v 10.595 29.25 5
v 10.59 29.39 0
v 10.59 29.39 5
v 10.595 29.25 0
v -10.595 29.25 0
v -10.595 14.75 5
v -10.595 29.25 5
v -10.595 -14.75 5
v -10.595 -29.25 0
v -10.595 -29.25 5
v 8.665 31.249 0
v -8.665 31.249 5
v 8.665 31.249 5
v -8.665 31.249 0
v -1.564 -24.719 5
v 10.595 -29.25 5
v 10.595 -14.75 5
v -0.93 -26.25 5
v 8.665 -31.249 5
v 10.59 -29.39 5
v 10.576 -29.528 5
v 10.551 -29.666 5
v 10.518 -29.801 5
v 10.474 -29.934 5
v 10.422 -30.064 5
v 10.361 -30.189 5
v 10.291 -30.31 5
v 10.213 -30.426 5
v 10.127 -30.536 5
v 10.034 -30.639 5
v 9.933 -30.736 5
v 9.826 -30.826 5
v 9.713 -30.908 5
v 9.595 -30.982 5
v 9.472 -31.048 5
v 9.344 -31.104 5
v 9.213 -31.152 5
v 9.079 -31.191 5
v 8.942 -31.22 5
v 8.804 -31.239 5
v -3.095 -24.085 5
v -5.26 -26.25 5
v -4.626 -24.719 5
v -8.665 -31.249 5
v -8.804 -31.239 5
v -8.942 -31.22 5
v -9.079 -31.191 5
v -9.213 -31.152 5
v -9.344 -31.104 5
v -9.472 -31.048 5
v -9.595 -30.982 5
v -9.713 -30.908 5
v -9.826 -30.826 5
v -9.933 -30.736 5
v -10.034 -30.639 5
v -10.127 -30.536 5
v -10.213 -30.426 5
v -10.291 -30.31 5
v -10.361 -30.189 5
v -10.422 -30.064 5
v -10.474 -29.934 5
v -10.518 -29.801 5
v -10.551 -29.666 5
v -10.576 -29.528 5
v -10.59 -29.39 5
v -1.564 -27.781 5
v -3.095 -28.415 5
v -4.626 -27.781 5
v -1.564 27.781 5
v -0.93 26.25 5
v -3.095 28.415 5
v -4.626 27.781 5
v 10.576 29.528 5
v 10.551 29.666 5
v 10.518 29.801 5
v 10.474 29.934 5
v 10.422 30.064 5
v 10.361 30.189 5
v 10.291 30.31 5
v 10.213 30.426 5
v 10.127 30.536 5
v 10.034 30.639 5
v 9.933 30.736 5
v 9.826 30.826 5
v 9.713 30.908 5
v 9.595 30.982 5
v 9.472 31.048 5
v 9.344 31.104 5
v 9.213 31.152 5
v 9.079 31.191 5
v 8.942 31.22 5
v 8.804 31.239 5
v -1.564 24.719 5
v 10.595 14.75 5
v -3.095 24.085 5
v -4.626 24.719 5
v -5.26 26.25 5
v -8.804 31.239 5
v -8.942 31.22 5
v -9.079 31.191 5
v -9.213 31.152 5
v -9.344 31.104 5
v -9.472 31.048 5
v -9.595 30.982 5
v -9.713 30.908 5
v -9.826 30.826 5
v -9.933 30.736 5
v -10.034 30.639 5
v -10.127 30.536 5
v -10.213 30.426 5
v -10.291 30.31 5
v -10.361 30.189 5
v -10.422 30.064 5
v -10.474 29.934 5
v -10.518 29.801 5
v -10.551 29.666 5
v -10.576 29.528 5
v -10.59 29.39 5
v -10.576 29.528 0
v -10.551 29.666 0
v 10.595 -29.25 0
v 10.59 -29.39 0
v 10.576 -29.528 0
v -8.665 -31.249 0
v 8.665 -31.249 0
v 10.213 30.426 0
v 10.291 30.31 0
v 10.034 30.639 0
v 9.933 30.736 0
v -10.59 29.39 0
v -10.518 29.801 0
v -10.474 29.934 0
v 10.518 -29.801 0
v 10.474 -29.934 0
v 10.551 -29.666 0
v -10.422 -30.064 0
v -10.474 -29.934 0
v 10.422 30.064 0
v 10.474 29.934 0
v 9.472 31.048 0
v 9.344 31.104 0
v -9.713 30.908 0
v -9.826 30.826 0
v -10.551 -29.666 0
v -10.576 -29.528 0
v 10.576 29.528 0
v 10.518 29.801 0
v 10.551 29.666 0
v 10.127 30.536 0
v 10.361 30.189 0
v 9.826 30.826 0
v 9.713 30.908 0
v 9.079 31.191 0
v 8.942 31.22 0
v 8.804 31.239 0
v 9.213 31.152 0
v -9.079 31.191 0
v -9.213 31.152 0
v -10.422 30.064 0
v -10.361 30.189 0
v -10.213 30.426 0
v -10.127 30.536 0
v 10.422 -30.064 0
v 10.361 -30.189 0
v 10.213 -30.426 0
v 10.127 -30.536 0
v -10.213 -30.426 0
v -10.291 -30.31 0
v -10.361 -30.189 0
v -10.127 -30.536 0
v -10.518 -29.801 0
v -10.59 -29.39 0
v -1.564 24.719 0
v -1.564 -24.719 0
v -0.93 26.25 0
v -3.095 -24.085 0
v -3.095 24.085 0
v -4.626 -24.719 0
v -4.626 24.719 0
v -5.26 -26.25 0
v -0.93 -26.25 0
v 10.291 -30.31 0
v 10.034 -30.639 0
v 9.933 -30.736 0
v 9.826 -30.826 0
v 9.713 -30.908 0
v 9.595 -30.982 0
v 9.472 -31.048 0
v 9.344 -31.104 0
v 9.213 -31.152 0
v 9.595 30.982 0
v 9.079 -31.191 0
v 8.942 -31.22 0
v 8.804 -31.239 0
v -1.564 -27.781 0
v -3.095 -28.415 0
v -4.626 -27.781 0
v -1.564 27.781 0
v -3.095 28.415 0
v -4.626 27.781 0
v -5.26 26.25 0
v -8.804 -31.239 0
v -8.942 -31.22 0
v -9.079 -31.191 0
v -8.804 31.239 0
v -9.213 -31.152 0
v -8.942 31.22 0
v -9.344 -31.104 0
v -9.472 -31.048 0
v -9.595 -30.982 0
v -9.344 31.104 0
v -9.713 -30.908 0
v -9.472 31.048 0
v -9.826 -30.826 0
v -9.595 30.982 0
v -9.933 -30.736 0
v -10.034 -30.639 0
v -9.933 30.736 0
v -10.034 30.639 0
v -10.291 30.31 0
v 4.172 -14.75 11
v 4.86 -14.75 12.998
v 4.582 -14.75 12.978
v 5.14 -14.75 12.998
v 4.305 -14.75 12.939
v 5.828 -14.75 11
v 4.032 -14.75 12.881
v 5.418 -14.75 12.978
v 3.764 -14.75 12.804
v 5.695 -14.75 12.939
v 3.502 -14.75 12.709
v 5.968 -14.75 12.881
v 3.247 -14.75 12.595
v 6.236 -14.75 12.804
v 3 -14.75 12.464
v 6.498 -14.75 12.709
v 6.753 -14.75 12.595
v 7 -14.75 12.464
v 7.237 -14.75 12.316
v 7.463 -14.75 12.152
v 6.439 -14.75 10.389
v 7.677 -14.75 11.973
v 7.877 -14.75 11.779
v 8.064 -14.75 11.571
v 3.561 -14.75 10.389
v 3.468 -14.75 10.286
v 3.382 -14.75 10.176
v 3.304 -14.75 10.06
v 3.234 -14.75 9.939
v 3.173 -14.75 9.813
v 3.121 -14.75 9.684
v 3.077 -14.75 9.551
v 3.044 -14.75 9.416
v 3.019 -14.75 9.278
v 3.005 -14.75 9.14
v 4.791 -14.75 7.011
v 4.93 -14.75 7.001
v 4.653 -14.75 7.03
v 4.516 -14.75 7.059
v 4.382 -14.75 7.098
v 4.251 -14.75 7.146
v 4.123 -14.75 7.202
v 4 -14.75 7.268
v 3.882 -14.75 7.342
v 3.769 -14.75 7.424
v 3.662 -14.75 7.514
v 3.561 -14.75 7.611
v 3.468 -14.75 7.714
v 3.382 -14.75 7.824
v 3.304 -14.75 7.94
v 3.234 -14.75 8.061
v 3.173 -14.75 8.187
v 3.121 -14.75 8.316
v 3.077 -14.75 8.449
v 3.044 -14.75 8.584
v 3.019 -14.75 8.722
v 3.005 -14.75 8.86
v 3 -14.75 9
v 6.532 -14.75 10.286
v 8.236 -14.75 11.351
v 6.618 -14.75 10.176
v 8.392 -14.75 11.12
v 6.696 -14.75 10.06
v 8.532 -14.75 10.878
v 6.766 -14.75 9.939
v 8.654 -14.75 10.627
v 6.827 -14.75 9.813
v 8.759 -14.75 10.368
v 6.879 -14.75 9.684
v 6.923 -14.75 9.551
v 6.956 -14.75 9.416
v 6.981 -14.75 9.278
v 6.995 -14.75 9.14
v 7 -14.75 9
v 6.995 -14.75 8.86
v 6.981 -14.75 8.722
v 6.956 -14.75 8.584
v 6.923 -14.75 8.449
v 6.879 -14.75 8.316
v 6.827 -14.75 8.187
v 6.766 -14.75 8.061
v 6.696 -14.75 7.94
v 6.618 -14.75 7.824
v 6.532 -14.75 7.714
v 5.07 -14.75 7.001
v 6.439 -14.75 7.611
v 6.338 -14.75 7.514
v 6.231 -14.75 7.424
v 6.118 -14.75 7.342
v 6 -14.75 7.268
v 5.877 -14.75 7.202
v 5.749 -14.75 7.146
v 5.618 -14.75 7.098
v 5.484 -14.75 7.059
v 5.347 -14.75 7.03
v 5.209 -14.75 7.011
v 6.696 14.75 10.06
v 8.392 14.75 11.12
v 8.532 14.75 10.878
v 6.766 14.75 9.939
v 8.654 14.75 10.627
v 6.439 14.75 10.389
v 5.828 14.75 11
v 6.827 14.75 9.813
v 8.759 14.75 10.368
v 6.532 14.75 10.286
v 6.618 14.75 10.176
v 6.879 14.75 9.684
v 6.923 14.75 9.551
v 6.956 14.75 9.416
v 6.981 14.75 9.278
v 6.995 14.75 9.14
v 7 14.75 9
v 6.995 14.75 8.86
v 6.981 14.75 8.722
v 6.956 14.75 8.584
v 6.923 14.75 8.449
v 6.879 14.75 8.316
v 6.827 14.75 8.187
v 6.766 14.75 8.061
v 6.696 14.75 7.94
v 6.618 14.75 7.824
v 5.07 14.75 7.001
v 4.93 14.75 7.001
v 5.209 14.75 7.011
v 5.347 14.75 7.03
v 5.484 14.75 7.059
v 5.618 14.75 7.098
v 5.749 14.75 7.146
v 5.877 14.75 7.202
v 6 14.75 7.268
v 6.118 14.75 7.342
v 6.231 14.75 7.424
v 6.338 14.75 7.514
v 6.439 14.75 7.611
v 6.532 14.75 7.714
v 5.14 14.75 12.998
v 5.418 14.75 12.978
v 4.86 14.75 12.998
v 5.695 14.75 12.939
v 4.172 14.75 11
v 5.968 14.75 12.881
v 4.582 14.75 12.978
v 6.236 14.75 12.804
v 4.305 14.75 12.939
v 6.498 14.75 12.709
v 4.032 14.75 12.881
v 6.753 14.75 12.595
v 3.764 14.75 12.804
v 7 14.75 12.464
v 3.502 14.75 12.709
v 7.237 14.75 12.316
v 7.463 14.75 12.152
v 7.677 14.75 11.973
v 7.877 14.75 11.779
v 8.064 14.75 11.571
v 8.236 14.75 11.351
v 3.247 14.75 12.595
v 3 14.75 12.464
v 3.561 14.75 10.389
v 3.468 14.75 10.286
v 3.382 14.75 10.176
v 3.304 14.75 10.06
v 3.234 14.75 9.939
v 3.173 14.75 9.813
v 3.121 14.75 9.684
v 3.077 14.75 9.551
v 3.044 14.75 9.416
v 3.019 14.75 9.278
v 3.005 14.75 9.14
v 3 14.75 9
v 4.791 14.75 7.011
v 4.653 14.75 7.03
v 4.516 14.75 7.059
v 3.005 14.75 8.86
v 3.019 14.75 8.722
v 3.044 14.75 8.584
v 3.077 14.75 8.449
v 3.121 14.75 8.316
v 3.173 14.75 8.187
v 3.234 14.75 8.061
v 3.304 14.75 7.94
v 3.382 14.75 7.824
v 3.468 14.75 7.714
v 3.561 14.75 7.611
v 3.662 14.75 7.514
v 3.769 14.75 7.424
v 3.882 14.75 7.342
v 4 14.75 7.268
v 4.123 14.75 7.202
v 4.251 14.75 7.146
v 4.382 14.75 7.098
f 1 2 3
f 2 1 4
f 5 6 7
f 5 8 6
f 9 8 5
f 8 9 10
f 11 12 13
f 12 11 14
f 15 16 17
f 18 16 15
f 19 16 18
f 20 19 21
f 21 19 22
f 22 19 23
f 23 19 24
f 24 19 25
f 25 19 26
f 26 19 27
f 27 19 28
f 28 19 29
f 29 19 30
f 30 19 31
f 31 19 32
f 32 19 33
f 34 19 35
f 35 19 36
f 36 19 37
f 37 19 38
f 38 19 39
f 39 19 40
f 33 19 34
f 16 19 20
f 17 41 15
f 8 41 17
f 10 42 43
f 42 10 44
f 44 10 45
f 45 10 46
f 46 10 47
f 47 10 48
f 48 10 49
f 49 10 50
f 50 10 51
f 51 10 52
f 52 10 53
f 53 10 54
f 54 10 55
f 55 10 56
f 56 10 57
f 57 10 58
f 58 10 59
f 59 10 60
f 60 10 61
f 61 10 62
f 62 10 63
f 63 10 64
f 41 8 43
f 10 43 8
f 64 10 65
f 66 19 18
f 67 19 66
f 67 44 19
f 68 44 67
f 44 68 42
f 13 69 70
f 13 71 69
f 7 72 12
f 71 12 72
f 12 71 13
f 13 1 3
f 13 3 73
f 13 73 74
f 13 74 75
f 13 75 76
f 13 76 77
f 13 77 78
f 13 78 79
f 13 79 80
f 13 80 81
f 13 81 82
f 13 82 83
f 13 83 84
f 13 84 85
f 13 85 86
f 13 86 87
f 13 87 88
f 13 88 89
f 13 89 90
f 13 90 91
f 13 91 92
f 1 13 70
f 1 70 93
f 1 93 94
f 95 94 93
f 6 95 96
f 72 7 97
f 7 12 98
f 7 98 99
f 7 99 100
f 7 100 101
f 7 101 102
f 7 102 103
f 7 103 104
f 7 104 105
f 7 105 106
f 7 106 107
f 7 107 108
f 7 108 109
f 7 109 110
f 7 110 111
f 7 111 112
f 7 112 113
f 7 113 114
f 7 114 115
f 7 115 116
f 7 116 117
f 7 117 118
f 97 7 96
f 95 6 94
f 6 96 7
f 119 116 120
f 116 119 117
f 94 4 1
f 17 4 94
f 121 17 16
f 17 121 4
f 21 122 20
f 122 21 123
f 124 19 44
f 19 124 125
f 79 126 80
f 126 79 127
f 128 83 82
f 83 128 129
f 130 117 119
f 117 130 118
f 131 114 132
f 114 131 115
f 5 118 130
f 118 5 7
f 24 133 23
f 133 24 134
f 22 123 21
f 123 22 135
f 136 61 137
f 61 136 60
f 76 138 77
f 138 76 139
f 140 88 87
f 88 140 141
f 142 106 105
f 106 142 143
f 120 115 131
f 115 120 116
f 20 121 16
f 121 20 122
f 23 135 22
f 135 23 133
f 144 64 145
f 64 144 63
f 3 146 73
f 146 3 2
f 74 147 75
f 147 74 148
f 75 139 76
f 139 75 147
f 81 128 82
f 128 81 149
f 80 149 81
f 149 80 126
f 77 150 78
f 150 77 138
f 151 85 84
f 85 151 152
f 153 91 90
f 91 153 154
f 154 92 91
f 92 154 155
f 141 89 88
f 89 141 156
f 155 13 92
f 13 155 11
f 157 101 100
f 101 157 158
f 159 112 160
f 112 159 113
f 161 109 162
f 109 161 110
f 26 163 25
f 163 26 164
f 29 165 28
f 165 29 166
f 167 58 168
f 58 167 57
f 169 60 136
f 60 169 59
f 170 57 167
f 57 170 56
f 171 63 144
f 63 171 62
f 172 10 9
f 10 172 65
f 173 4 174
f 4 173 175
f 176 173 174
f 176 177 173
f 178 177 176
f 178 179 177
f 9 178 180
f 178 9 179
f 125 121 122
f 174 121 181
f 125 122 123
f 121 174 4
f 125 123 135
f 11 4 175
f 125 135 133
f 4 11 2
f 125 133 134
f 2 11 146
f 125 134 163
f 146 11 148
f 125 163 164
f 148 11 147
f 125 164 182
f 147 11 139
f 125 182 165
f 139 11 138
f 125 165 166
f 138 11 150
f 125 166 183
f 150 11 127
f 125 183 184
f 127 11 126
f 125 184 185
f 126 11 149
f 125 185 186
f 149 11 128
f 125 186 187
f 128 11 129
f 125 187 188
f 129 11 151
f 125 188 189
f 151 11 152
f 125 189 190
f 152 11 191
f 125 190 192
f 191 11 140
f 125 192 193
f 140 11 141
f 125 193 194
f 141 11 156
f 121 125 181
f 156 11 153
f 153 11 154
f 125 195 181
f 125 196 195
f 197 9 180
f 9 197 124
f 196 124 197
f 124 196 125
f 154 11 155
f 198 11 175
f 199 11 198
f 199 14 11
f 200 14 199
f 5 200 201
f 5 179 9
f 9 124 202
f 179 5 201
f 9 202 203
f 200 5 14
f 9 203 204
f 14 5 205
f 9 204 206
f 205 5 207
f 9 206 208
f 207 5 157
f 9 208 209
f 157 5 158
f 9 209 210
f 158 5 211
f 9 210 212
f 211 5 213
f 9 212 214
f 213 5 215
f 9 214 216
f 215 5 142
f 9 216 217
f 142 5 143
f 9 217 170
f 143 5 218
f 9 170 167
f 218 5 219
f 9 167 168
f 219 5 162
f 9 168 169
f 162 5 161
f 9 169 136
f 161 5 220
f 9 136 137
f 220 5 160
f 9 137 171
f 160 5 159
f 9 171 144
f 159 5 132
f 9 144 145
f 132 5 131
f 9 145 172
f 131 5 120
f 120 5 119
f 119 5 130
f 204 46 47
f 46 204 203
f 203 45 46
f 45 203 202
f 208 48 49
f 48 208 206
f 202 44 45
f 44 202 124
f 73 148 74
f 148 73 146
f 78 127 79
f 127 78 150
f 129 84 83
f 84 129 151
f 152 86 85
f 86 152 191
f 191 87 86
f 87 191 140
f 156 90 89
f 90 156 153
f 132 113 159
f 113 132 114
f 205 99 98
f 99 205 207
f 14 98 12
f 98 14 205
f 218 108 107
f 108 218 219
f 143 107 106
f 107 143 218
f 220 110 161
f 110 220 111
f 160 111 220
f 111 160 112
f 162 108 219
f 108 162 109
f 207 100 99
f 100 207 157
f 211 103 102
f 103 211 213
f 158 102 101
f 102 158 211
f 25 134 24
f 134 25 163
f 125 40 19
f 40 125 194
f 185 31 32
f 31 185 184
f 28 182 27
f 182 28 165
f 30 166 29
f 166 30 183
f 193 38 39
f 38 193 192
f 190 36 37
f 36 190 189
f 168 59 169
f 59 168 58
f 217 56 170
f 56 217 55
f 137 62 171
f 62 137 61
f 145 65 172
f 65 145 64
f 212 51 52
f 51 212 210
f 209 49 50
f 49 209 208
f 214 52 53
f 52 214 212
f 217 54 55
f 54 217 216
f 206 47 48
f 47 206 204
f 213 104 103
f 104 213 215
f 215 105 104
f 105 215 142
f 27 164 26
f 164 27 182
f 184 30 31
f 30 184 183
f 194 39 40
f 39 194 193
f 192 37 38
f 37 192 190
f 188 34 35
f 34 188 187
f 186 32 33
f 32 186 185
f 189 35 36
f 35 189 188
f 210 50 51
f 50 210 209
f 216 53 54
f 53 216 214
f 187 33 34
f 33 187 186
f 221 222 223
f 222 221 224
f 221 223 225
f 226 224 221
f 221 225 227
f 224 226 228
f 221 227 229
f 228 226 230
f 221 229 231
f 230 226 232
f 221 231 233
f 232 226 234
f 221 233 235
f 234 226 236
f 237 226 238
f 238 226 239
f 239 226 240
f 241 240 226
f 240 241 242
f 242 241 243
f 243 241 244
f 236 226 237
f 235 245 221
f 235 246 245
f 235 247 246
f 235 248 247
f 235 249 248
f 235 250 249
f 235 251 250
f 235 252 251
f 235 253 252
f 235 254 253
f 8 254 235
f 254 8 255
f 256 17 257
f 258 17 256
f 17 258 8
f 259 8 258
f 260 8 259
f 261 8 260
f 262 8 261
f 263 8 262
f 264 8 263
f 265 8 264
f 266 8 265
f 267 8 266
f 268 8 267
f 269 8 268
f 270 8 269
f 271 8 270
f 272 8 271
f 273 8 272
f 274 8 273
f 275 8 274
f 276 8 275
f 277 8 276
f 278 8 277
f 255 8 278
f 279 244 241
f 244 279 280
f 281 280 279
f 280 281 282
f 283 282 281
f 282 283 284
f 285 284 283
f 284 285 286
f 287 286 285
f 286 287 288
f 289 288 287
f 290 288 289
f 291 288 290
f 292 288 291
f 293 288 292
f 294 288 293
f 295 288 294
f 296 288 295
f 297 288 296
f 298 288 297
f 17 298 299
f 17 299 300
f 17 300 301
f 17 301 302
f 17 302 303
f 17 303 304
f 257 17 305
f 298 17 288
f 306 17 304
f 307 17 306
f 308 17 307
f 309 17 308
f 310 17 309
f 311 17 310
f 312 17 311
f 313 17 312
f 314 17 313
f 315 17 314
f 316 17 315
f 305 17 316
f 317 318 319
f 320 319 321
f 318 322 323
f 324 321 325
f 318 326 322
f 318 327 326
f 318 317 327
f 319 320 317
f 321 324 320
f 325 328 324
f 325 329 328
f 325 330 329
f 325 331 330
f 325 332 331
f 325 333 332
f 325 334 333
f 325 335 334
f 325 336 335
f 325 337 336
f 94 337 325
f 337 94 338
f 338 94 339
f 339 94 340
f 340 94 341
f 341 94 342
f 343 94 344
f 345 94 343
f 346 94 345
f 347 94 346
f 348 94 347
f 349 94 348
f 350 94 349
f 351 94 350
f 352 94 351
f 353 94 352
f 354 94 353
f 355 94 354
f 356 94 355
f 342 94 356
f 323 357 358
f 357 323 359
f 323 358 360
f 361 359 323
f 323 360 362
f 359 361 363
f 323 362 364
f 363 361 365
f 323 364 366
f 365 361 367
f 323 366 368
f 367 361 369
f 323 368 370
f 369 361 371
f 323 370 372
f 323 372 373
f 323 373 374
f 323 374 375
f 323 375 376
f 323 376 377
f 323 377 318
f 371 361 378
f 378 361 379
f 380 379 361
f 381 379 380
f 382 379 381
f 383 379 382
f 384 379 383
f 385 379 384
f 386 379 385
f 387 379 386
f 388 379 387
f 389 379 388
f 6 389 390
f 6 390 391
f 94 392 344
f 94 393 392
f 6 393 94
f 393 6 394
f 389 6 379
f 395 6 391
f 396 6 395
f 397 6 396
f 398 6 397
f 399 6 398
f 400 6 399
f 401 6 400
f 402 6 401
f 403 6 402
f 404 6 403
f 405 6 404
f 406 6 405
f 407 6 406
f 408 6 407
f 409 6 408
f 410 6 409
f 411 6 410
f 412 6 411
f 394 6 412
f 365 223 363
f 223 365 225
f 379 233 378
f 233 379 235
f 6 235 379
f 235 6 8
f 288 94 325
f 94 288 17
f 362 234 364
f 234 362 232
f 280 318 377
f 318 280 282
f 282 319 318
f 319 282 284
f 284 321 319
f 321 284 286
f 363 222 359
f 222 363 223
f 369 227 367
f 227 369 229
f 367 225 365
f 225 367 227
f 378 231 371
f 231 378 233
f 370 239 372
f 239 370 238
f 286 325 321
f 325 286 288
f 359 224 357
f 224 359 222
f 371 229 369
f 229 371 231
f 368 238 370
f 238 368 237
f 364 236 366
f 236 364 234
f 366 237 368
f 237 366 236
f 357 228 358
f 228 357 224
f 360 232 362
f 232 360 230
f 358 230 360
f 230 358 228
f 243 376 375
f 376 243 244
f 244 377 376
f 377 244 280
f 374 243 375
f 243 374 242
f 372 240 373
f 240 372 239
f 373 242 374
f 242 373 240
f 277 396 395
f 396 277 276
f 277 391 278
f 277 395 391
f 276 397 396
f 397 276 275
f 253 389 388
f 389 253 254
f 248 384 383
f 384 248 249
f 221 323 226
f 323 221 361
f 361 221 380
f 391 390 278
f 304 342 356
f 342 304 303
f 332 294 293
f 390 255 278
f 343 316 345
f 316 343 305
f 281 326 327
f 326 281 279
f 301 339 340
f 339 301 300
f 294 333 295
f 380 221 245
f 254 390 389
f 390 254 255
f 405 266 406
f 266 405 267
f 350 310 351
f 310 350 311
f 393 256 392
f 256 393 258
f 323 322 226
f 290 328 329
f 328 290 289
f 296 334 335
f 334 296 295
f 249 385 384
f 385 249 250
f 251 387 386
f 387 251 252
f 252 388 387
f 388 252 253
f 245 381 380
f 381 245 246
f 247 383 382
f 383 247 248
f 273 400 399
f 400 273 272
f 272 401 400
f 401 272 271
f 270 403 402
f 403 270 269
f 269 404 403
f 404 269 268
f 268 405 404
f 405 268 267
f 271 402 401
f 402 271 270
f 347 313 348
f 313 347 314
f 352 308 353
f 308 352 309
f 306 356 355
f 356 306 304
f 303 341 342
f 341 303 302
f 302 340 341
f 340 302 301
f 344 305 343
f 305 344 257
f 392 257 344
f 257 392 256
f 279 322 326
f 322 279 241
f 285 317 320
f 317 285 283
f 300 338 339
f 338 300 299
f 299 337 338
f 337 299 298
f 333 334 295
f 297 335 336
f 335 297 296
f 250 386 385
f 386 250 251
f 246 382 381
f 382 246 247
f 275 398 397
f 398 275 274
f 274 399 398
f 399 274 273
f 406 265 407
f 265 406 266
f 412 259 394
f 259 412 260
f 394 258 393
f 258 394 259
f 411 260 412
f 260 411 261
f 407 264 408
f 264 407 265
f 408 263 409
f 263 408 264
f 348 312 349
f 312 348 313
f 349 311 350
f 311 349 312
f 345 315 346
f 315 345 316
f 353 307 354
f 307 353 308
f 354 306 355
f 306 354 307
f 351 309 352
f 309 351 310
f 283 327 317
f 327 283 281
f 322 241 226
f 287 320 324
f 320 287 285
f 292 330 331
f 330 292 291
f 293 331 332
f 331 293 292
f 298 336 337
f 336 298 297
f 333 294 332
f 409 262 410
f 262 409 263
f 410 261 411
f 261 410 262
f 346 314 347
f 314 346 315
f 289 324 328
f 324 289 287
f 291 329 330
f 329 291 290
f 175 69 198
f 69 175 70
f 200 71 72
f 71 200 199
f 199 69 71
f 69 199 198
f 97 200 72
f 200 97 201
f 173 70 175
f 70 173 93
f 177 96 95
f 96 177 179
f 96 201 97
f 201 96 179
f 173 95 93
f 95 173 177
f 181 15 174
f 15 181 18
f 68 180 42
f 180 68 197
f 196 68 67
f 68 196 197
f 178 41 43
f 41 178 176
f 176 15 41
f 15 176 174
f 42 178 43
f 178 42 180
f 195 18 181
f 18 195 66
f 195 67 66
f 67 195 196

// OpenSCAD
// file: ../trunctear.scad
//A module for truncated tear drops.

trunctear(1, 0.5, $fn = 90);

module trunctear(hei, radian, cent = false)
{
    linear_extrude(height = hei, center = cent)
        hull()
        {
            circle(r = radian);
            translate([0, radian/2])
                square([2*(radian*(2*cos(45)-1)), radian], center = true);
        }
}
// file: ../polyhole.scad
// The Cylinder is dead! Long live the Cylinder!
// A module for a polyhole by radius, based on Nophead's work.

module polyhole(h, r, cent = false)
{
    n = max(round(4 * r), 3);
    cylinder(h = h, r = r / cos(180 / n), $fn = n, center = cent);
}
// main file
use<../polyhole.scad>
use<../trunctear.scad>

TensionerSurface();

module TensionerSurface()
{
    difference()
    {
        union()
        {
            hull()
            {
                translate([(37.69/2-10-0.75-5+2.5+5-2), ((12.5+20+3)/2+5+7/2+5-2), 0])
                    cylinder(h = 5, r = 2, $fn = 90);
                translate([(37.69/2-10-0.75-5+2.5+5-2), -((12.5+20+3)/2+5+7/2+5-2), 0])
                    cylinder(h = 5, r = 2, $fn = 90);
                translate([-(37.69/2-10-0.75-5+2.5+5-2), ((12.5+20+3)/2+5+7/2+5-2), 0])
                    cylinder(h = 5, r = 2, $fn = 90);
                translate([-(37.69/2-10-0.75-5+2.5+5-2), -((12.5+20+3)/2+5+7/2+5-2), 0])
                    cylinder(h = 5, r = 2, $fn = 90);
            }
            hull()
            {
                translate([0, 0, 5/2])
                    cube([(37.69/2-10-0.75-5+2.5+5)*2, (12.5-3+20), 5], center = true);
                translate([5, 0, 5+4])
                    rotate([90, 0, 0])
                        cylinder(h = (12.5-3+20), r = 4, center = true, $fn = 90);
            }
        }
        translate([5, 0, 5+4])
            rotate([90, 0, 0])
                trunctear((12.5-3+20), 2, true, $fn = 90);
        translate([-(37.69/2-10-0.75-5), ((12.5+20+3)/2+5+7/2), 0])
            polyhole(5, 2);
        translate([-(37.69/2-10-0.75-5), -((12.5+20+3)/2+5+7/2), 0])
            polyhole(5, 2);
    }
}
